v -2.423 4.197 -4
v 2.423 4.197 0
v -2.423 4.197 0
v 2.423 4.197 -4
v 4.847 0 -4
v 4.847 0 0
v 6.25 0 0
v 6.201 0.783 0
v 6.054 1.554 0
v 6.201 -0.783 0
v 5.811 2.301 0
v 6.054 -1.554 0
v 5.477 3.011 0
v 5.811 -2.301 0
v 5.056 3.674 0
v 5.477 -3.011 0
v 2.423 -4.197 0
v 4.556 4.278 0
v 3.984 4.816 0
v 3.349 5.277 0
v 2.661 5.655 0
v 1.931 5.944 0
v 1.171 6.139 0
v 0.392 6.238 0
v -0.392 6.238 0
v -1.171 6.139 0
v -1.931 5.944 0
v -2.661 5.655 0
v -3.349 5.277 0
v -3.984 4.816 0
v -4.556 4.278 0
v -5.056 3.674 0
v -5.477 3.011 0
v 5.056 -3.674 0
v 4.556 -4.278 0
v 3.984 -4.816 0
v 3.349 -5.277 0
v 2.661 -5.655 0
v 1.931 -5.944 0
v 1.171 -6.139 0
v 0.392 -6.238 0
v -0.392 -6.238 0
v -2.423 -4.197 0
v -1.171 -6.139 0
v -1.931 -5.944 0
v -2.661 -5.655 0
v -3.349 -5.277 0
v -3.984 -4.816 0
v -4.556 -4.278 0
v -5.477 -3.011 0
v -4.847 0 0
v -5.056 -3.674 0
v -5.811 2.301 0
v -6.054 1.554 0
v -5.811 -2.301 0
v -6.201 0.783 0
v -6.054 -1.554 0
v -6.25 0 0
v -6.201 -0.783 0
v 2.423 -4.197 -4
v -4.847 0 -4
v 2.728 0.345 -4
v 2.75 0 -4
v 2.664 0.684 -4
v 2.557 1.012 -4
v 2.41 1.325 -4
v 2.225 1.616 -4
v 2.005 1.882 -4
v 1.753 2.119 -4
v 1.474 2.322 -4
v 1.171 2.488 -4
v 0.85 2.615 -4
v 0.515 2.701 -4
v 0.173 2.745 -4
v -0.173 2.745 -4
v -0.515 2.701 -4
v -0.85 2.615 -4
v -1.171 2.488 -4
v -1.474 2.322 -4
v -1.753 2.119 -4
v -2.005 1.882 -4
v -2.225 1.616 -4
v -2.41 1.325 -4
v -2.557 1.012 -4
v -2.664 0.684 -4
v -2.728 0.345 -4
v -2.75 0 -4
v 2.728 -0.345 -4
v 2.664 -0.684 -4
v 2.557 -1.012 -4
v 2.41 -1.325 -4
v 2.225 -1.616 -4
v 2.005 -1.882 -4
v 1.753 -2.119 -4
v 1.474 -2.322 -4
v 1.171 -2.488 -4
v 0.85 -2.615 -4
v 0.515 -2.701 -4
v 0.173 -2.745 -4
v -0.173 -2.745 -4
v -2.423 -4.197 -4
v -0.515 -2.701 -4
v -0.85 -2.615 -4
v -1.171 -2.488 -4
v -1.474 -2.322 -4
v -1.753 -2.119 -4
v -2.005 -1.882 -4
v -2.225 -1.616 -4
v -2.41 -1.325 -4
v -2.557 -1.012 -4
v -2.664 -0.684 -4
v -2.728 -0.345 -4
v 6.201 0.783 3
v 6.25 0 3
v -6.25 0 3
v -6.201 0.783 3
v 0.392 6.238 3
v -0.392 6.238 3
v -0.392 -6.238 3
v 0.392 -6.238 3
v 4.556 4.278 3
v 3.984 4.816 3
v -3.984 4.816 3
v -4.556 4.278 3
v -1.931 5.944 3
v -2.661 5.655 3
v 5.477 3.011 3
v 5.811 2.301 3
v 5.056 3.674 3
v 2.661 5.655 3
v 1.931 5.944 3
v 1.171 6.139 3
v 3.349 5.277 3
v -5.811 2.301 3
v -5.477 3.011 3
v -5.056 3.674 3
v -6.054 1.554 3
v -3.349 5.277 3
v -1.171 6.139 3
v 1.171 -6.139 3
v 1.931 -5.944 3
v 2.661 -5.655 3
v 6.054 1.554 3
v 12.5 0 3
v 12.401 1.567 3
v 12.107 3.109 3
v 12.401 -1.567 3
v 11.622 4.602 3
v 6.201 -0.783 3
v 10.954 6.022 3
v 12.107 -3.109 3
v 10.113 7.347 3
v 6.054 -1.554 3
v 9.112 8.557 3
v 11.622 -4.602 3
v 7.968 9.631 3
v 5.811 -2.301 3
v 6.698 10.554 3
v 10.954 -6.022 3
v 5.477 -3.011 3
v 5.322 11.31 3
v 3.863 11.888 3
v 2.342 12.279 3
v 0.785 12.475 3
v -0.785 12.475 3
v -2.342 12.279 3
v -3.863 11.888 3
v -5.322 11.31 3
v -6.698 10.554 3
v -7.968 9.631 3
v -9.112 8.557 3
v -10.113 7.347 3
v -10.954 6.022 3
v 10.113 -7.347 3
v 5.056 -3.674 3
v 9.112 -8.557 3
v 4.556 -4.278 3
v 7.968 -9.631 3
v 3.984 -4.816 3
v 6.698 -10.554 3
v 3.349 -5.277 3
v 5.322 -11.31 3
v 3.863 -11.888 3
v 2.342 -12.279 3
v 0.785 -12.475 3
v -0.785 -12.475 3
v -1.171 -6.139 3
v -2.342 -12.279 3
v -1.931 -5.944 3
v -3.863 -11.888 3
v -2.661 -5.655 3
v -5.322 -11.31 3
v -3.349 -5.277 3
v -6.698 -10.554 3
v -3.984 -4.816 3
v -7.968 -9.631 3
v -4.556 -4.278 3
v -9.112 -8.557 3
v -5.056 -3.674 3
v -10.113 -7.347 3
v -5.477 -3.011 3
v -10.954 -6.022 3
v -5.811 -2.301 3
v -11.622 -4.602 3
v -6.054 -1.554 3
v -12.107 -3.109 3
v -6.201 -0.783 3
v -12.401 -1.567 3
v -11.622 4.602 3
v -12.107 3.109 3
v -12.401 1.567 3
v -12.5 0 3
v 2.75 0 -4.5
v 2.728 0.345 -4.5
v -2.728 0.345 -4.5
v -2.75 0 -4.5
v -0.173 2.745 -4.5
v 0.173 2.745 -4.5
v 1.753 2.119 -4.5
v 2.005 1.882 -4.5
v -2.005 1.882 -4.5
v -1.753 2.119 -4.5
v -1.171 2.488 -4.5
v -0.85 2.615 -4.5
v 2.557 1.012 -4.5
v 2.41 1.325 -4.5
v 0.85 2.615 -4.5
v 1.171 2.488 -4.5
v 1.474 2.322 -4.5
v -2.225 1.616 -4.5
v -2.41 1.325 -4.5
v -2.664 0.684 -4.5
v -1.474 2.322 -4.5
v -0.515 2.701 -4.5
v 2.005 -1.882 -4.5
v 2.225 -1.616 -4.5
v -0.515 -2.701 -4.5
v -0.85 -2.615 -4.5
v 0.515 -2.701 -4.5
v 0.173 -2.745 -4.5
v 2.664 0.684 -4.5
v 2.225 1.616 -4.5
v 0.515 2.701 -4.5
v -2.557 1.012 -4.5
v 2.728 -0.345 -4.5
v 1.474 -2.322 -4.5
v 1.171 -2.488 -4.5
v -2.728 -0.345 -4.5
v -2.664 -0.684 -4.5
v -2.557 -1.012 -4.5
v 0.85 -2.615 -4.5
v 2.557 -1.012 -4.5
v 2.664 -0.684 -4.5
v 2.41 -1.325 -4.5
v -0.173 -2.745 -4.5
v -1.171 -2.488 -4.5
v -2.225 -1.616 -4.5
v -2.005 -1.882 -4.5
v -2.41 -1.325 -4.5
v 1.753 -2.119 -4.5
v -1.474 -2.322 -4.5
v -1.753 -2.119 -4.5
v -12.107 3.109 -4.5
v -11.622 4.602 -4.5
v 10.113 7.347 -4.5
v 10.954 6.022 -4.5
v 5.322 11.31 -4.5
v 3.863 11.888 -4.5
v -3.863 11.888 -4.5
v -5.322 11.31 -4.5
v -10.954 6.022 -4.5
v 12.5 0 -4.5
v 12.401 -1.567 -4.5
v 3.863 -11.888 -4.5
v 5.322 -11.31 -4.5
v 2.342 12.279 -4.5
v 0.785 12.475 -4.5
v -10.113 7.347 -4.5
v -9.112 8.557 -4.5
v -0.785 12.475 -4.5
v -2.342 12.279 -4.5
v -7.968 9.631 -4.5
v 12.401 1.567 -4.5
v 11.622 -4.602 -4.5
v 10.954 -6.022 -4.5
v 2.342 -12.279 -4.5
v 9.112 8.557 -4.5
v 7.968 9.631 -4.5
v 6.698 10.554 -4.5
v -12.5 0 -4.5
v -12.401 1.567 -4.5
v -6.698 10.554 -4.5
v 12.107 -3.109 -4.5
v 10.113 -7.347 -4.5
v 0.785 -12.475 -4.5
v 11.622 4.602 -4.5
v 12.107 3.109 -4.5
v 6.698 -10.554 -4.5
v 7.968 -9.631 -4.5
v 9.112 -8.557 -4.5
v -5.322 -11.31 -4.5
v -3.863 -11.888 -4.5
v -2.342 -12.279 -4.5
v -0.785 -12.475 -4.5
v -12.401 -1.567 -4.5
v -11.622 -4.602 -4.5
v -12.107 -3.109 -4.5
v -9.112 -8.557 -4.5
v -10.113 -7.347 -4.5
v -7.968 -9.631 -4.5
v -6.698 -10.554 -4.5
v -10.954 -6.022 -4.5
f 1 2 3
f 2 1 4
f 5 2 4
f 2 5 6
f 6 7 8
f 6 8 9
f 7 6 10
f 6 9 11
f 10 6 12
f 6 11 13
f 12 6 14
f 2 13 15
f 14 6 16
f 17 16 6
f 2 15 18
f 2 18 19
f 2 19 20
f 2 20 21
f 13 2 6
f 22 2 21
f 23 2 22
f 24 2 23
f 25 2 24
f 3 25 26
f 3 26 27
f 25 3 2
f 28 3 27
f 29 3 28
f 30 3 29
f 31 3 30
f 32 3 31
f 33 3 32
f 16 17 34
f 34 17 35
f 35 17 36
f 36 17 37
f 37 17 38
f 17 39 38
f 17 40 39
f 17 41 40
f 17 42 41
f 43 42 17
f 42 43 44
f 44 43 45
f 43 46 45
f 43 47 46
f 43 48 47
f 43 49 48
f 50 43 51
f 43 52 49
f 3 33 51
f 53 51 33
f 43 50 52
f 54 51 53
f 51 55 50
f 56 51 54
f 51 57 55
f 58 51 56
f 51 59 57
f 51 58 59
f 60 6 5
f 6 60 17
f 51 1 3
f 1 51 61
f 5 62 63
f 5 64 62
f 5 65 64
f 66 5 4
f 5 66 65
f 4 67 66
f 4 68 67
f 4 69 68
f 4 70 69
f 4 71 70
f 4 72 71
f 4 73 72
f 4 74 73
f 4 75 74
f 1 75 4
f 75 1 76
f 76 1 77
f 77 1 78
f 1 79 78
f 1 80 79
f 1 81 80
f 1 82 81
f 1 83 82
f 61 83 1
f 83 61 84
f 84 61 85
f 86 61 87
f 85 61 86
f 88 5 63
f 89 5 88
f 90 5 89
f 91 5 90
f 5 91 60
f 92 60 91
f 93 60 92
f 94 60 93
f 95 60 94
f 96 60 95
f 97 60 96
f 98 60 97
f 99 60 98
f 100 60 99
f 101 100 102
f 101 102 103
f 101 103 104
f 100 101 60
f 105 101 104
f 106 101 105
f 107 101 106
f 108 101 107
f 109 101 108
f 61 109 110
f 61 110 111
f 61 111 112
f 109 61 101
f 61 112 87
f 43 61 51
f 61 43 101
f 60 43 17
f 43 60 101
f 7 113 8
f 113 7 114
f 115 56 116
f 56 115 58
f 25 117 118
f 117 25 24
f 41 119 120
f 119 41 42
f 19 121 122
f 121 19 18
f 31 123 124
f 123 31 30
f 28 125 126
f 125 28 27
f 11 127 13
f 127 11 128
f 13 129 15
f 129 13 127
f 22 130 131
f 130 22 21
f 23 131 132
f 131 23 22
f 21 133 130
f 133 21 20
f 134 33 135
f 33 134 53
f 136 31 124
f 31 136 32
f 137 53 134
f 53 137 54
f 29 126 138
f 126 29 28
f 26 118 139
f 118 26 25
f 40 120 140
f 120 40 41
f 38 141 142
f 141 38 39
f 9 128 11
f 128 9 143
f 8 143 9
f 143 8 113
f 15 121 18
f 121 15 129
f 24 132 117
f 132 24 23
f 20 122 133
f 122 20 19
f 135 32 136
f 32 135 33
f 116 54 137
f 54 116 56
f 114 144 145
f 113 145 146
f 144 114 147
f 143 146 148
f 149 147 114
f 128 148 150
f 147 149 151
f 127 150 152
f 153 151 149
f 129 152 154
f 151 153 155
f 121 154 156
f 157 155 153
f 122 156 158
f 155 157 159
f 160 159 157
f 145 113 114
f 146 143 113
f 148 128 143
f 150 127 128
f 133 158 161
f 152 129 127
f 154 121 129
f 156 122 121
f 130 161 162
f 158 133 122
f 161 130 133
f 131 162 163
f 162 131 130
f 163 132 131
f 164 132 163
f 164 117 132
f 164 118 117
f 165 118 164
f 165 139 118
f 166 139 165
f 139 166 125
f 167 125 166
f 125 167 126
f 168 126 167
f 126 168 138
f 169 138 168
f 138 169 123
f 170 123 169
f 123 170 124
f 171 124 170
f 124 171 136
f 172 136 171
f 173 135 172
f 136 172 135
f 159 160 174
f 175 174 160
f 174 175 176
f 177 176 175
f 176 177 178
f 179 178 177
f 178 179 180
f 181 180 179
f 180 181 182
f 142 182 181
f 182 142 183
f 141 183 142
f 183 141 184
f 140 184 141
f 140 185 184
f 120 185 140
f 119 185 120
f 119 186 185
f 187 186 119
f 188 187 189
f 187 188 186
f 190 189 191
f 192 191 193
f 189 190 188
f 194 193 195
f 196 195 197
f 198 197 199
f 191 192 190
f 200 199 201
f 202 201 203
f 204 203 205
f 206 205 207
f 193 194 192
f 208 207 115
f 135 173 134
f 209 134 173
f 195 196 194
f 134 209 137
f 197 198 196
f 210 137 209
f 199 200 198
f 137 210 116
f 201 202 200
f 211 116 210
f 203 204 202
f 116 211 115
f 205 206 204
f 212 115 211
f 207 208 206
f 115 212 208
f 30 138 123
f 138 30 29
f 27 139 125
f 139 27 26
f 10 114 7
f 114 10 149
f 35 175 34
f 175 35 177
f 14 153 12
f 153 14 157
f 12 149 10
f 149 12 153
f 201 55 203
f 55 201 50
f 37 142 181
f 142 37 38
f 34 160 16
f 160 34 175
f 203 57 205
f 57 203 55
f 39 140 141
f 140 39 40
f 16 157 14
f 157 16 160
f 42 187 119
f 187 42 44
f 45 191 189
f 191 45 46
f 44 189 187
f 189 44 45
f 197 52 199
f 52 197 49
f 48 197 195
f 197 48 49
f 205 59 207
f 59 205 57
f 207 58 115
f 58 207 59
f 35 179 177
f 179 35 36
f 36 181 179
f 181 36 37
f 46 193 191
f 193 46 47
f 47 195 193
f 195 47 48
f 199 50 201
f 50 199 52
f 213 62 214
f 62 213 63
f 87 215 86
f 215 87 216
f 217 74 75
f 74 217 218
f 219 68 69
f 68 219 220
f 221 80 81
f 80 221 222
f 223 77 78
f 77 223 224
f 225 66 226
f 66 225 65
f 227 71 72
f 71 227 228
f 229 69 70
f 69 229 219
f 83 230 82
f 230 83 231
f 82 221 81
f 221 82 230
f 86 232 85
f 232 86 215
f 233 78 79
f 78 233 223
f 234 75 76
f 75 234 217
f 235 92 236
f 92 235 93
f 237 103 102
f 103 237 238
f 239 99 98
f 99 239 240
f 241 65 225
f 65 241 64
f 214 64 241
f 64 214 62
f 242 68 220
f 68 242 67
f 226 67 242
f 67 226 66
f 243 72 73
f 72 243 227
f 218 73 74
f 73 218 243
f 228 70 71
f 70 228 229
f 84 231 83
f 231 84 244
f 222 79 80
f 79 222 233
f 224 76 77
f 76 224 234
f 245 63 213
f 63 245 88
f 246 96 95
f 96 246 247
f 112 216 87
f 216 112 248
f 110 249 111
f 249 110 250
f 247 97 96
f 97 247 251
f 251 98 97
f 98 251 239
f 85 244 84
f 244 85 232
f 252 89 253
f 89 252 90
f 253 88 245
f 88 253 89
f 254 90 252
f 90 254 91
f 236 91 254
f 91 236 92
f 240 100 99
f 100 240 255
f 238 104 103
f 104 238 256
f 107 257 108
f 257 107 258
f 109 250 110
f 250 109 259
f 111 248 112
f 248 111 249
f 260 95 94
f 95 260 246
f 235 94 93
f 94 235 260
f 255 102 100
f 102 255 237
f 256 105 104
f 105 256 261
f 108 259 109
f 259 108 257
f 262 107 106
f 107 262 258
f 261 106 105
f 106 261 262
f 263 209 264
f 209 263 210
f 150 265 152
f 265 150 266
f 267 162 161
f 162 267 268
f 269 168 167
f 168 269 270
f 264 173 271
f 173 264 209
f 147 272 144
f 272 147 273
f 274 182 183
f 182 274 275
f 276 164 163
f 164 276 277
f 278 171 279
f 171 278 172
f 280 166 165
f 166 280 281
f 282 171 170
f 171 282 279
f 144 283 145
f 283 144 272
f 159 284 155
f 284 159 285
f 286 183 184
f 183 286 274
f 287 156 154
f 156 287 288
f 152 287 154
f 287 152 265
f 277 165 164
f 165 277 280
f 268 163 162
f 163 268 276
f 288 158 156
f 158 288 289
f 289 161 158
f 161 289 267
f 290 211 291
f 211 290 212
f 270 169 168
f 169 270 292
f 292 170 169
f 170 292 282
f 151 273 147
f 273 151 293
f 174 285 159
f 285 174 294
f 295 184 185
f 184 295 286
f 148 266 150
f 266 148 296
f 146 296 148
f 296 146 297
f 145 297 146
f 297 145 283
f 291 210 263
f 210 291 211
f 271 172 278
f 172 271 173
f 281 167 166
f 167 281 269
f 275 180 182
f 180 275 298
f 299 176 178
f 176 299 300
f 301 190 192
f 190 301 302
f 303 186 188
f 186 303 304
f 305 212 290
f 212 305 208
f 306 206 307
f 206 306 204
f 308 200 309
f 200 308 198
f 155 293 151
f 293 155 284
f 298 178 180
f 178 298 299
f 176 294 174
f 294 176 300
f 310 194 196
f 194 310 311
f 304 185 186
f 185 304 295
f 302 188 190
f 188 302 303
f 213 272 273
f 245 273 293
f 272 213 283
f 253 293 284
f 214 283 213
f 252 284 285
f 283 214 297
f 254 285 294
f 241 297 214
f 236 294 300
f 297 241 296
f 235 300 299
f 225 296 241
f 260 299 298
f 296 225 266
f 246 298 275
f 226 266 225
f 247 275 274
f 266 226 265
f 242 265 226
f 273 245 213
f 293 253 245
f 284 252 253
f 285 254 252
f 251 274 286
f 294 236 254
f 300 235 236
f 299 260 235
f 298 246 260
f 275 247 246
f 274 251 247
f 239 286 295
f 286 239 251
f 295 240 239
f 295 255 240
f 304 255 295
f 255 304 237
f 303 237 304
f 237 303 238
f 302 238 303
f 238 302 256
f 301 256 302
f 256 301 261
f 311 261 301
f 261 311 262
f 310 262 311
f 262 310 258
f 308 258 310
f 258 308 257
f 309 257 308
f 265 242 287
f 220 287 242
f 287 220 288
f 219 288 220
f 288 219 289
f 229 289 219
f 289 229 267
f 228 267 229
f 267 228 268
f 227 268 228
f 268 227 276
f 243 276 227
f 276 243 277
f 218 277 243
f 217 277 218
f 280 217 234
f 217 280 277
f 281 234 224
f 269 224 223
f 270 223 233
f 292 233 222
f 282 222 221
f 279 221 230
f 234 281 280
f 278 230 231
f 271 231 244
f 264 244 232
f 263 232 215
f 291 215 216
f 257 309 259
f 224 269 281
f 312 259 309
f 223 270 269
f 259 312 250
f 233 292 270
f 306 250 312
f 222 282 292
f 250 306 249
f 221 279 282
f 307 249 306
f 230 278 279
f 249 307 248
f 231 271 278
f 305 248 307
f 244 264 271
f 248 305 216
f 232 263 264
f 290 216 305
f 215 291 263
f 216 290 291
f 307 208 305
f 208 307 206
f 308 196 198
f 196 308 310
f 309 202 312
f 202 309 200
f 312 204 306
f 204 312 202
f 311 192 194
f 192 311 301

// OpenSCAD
$fn = 50;


difference() {
	union() {
		translate(v = [0, 0, -4.5000000000]) {
			cylinder(h = 7.5000000000, r = 12.5000000000);
		}
	}
	union() {
		translate(v = [0, 0, 0]) {
			rotate(a = [0, 0, 0]) {
				difference() {
					union() {
						translate(v = [0, 0, -4]) {
							linear_extrude(height = 4) {
								polygon(points = [[4.8468000000, 0.0000000000], [2.4234000000, 4.1974519271], [-2.4234000000, 4.1974519271], [-4.8468000000, 0.0000000000], [-2.4234000000, -4.1974519271], [2.4234000000, -4.1974519271]]);
							}
						}
					}
					union();
				}
			}
		}
		#cylinder(h = 3, r = 6.2500000000);
		#translate(v = [0, 0, -100.0000000000]) {
			cylinder(h = 200, r = 2.7500000000);
		}
	}
}
